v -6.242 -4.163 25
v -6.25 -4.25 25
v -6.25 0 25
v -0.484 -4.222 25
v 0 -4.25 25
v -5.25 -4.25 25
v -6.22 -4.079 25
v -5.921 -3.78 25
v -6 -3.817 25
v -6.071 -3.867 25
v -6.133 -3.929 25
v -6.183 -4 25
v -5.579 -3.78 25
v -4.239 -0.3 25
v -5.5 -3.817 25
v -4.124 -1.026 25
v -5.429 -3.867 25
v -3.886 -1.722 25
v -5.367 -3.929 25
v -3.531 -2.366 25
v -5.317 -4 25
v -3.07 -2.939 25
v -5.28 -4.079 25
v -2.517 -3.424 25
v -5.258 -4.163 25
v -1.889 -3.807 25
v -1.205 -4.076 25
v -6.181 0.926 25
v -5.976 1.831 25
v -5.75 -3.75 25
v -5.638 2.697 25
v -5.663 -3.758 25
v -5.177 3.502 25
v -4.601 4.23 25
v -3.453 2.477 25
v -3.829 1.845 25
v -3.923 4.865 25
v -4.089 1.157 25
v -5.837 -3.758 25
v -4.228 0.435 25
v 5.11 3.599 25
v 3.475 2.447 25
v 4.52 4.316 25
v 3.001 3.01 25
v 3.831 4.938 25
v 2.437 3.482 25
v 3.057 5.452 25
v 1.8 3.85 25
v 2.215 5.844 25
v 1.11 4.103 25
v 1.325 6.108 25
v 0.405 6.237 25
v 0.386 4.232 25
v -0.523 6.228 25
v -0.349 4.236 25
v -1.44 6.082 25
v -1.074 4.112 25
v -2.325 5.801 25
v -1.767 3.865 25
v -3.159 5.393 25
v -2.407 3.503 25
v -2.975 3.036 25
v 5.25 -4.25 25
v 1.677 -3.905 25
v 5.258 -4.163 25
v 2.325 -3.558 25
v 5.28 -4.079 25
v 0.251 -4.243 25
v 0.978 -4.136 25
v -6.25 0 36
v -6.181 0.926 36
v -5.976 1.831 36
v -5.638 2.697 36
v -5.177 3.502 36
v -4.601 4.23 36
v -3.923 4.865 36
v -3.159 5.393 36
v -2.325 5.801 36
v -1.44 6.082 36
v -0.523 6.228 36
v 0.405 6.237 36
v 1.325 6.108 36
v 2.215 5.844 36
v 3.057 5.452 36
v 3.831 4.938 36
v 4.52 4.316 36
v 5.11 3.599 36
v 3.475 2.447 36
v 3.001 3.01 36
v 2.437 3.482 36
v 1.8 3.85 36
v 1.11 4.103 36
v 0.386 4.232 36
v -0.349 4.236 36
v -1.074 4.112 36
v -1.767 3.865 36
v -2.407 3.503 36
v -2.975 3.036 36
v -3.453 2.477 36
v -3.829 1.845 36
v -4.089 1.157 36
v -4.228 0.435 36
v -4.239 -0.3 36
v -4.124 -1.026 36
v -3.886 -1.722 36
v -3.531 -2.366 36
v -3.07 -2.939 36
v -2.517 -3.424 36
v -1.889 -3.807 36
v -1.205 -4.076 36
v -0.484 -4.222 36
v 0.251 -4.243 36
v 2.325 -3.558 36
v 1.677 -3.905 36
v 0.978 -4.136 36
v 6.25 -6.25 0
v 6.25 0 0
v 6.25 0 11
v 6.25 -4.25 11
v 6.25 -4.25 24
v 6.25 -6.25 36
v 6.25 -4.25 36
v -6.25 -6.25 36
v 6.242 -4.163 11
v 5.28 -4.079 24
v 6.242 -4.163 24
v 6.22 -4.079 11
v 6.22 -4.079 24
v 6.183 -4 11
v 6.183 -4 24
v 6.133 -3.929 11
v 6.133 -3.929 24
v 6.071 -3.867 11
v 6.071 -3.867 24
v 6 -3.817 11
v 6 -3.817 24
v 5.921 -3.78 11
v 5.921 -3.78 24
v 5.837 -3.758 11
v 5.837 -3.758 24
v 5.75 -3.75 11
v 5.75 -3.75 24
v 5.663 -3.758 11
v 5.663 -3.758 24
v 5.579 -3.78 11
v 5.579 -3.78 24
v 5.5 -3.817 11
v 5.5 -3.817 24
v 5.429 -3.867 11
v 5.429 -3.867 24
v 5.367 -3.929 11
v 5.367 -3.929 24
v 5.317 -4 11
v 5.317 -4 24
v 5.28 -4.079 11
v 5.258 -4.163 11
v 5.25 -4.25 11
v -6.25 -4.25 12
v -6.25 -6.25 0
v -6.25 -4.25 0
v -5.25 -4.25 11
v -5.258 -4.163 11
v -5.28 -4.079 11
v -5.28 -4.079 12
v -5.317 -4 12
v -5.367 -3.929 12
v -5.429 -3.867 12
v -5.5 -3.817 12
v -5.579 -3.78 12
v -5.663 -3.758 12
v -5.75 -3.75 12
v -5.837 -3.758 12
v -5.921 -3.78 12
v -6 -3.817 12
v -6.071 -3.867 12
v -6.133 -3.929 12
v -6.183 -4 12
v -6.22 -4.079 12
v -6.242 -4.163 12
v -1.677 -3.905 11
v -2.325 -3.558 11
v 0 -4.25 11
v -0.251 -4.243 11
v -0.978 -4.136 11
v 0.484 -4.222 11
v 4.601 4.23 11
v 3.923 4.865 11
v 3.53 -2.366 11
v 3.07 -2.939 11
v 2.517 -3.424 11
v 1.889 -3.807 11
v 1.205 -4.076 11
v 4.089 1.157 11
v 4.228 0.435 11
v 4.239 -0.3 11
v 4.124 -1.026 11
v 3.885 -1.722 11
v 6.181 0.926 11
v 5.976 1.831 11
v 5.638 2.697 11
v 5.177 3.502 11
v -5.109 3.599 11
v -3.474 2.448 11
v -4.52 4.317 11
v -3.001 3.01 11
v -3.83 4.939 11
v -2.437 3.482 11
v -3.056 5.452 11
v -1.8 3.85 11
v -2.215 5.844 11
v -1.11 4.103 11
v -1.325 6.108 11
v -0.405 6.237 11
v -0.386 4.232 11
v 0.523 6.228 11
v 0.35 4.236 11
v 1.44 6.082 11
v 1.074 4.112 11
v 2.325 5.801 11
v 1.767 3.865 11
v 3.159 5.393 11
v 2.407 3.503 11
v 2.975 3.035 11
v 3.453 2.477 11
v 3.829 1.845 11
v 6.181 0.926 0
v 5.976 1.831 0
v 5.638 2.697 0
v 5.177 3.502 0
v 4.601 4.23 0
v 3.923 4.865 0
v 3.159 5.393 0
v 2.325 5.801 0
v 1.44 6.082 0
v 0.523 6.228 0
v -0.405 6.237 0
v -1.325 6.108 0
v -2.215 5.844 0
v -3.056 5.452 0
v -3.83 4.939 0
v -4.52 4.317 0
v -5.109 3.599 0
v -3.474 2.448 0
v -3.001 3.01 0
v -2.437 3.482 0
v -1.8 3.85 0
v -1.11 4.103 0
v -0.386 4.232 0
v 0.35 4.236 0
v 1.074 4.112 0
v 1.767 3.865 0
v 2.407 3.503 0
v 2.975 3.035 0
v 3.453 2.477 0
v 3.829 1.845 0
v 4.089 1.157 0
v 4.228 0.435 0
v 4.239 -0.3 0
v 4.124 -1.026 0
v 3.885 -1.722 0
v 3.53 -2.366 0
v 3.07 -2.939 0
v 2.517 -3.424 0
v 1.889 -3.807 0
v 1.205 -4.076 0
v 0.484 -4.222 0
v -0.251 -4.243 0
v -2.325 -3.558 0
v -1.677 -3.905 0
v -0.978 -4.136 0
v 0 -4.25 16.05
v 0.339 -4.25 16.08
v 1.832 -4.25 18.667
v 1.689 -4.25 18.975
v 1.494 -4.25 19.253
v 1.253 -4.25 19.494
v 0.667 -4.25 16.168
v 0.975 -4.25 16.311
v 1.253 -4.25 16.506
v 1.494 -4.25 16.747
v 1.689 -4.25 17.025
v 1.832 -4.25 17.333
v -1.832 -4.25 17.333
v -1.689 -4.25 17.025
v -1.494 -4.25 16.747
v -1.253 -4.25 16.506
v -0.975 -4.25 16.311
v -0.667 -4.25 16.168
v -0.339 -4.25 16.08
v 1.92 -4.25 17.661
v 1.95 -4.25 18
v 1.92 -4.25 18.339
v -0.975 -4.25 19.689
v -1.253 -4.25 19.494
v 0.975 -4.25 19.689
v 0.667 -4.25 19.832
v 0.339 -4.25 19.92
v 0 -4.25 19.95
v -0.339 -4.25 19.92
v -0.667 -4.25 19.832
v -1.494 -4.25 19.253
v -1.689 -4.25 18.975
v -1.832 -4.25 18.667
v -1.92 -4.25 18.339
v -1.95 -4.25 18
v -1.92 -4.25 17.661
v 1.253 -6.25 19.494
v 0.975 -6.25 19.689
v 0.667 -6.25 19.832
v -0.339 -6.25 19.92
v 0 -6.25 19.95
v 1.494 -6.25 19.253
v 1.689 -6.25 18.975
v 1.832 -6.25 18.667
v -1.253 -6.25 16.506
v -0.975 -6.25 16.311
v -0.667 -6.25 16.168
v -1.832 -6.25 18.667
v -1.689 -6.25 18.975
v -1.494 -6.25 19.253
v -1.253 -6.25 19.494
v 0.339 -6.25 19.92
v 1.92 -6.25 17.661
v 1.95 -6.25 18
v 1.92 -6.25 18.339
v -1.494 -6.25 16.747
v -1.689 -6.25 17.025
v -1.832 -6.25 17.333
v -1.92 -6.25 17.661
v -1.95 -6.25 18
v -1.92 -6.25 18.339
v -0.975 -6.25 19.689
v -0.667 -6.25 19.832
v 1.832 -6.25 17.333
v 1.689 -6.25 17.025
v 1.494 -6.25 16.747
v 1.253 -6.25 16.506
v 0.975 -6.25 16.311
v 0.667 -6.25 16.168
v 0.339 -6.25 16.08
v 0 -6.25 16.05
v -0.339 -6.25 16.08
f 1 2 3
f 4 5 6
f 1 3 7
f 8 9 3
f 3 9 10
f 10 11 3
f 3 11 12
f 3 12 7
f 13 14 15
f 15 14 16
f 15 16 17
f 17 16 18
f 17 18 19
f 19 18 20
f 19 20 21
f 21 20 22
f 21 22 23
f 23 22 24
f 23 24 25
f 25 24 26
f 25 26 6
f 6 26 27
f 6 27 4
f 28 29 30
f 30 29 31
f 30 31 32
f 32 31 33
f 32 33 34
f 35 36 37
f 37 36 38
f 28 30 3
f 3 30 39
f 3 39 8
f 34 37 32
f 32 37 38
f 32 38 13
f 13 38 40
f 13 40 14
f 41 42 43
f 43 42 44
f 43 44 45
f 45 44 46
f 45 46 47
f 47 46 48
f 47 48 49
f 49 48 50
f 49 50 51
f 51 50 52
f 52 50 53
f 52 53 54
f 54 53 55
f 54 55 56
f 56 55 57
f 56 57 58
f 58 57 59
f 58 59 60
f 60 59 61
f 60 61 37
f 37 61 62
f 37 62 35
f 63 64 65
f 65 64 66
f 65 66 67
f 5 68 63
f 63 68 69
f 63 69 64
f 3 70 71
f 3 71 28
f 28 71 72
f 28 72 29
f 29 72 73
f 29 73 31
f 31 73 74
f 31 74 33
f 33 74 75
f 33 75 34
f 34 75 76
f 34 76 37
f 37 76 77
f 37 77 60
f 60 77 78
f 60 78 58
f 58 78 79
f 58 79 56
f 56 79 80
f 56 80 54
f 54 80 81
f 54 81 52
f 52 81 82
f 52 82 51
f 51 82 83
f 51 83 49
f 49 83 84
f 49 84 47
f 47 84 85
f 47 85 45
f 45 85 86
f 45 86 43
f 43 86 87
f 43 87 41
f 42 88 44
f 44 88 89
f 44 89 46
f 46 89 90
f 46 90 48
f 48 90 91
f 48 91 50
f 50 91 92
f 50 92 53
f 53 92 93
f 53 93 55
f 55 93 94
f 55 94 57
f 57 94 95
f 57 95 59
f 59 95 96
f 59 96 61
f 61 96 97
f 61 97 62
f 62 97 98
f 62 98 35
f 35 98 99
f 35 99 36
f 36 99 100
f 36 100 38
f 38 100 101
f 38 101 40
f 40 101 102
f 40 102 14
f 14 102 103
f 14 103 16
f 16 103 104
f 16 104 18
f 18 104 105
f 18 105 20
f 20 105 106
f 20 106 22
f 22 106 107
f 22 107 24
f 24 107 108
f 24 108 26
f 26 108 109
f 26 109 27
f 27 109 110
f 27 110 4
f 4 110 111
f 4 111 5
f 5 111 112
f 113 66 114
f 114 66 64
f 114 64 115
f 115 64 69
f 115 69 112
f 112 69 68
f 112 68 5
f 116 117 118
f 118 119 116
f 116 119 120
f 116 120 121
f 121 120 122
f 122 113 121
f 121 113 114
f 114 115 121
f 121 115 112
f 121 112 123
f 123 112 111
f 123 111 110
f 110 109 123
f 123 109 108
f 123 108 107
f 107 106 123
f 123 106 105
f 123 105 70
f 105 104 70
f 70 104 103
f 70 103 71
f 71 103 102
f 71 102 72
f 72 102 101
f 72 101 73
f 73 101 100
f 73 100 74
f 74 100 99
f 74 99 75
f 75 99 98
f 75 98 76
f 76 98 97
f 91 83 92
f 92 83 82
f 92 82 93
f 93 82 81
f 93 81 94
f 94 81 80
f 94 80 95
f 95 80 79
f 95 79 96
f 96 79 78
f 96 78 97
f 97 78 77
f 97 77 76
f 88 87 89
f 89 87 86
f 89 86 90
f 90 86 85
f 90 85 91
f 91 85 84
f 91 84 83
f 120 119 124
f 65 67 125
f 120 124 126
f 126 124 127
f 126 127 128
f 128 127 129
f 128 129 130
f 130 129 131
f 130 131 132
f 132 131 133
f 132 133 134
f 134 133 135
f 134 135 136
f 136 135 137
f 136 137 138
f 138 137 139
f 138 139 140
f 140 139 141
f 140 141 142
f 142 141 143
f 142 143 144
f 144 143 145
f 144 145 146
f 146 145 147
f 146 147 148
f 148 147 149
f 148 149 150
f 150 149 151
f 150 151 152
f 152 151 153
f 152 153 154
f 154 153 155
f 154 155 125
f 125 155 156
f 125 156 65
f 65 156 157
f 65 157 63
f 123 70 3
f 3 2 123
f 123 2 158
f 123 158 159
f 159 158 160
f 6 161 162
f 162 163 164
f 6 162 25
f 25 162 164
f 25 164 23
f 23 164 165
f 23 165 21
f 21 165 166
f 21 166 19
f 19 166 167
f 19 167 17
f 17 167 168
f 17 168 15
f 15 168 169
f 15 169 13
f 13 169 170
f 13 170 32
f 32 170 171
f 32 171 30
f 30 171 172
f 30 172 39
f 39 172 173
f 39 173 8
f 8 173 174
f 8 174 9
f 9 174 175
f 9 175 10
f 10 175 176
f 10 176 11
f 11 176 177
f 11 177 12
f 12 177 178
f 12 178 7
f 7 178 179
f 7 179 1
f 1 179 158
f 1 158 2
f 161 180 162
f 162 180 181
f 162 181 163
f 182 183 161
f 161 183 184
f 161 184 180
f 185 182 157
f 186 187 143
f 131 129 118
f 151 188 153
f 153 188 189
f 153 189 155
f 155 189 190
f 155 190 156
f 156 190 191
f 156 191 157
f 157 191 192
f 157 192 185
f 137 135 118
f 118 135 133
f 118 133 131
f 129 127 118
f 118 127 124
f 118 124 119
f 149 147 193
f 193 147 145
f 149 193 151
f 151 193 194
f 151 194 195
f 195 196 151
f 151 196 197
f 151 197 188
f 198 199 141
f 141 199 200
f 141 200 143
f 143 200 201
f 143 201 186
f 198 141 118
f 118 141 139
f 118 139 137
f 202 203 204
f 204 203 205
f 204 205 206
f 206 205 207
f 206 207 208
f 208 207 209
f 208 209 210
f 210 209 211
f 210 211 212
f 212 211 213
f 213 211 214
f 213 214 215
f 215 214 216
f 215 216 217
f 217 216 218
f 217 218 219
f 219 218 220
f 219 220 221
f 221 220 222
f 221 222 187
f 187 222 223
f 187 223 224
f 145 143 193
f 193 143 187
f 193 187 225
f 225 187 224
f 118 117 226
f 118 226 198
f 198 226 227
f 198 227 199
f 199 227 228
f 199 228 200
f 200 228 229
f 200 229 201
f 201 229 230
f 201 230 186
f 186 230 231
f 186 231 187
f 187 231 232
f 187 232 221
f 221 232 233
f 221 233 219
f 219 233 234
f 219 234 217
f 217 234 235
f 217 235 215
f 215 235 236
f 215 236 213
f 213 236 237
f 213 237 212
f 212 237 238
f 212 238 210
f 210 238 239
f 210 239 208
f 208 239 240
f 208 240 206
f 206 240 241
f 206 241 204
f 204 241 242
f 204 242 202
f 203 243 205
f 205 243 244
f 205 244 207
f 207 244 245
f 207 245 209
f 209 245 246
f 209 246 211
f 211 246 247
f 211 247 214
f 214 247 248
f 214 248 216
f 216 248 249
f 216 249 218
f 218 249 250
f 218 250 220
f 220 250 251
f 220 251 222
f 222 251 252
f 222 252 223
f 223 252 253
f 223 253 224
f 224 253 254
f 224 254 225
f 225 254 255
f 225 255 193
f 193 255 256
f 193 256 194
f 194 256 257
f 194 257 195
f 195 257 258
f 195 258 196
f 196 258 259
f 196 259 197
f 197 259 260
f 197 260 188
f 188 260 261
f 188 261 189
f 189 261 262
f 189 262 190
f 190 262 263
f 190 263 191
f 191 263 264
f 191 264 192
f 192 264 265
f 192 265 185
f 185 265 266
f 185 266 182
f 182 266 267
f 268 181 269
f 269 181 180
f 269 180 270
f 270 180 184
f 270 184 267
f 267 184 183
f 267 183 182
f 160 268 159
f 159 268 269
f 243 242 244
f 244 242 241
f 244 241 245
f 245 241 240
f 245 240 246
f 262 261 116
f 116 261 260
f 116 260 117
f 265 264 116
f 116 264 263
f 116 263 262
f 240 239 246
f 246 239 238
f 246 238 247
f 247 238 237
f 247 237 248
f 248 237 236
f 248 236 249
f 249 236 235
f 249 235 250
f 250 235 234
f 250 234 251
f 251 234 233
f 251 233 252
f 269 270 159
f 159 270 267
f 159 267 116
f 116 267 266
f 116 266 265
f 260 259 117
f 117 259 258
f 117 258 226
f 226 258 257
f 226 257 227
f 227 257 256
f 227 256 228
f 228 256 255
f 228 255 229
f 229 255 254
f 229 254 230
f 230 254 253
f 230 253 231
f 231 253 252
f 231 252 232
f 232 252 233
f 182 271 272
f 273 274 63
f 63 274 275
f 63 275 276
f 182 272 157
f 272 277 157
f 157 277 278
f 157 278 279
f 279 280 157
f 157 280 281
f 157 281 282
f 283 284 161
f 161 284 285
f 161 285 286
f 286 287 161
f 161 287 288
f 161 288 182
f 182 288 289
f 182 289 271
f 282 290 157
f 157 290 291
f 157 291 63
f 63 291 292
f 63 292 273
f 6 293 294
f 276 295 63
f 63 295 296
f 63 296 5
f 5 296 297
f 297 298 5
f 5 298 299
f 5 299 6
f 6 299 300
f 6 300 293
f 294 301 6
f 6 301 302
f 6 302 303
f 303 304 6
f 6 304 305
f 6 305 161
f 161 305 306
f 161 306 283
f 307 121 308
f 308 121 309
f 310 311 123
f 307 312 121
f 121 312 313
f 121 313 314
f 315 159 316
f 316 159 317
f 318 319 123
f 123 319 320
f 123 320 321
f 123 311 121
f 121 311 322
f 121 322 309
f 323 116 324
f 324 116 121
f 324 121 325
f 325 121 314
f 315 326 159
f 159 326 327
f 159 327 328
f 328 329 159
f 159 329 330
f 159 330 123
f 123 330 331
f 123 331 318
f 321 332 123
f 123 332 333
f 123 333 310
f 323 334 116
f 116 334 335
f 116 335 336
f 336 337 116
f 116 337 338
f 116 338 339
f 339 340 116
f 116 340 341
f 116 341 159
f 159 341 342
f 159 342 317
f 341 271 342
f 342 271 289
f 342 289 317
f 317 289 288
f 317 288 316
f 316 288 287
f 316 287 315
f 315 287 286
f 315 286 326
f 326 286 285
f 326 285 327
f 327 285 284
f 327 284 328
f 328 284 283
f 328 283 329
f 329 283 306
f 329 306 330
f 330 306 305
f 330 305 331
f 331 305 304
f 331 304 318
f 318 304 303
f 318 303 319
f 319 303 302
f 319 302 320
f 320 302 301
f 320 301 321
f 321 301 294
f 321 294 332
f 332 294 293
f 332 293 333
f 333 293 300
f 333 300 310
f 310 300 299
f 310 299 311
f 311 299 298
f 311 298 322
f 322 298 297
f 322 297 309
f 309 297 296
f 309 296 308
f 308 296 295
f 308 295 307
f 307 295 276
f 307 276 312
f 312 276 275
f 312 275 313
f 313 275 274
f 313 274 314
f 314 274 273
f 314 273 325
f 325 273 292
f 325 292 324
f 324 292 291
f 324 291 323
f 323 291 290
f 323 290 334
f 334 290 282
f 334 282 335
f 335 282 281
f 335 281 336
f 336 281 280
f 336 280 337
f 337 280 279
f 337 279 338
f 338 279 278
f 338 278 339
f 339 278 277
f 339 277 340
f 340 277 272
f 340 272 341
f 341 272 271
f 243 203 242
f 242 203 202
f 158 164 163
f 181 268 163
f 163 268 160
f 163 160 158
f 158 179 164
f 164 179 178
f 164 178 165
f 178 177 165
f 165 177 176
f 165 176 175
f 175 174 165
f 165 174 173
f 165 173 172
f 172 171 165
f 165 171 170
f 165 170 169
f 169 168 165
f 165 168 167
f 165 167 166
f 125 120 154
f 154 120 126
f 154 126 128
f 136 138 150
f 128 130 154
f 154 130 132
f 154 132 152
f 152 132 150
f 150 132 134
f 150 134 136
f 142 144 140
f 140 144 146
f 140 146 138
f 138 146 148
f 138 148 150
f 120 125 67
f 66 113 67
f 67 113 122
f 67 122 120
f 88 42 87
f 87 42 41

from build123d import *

# Parameters (mm, degrees)
RESSALTO_EXTRUS_O1_DEPTH = 11
ESBO_O2_W                = 12.5
ESBO_O2_H                = 2
RESSALTO_EXTRUS_O2_DEPTH = 7
RESSALTO_EXTRUS_O3_DEPTH = 7
ESBO_O4_R                = 1.95
CORTE_EXTRUS_O1_DEPTH    = 2
CORTE_EXTRUS_O2_DEPTH    = 12
CORTE_EXTRUS_O3_DEPTH    = 12


with BuildPart() as part:
    # Esboço1 → Ressalto-extrusão1 (new body)
    with BuildSketch(Plane.XY):
        with BuildLine():
            Line((-6.25, -6.25), (0, -6.25))
            ThreePointArc((0, -6.25), (-4.419417382, -4.419417382), (-6.25, 0))
            Line((-6.25, 0), (-6.25, -6.25))
        make_face()
        with BuildLine():
            Line((6.25, -6.25), (6.25, 0))
            ThreePointArc((6.25, 0), (4.419417382, -4.419417382), (0, -6.25))
            Line((0, -6.25), (6.25, -6.25))
        make_face()
        with BuildLine():
            ThreePointArc((-4.25, 0), (0, 4.25), (4.25, 0))
            Line((4.25, 0), (6.25, 0))
            ThreePointArc((6.25, 0), (4.419417387, 4.419417378), (1.3e-08, 6.25))
            ThreePointArc((1.3e-08, 6.25), (-4.419417378, 4.419417387), (-6.25, 0))
            Line((-6.25, 0), (-4.25, 0))
        make_face()
        with BuildLine():
            Line((6.25, 0), (4.25, 0))
            ThreePointArc((4.25, 0), (0, -4.25), (-4.25, 0))
            Line((-4.25, 0), (-6.25, 0))
            ThreePointArc((-6.25, 0), (-4.419417382, -4.419417382), (0, -6.25))
            ThreePointArc((0, -6.25), (4.419417382, -4.419417382), (6.25, 0))
        make_face()
    ressalto_extrus_o1 = extrude(amount=RESSALTO_EXTRUS_O1_DEPTH)

    # Esboço2 → Ressalto-extrusão2 (add)
    with BuildSketch(Plane.XY.offset(11)):
        with Locations((0, -5.25)):
            Rectangle(ESBO_O2_W, ESBO_O2_H)
    ressalto_extrus_o2 = extrude(amount=RESSALTO_EXTRUS_O2_DEPTH)

    # Esboço3 → Ressalto-extrusão3 (add)
    with BuildSketch(Plane.XY.offset(18)):
        with BuildLine():
            Line((5.25, -4.25), (6.25, -4.25))
            ThreePointArc((6.25, -4.25), (5.75, -3.75), (5.25, -4.25))
        make_face()
        with BuildLine():
            Line((-6.25, -4.25), (-5.25, -4.25))
            ThreePointArc((-5.25, -4.25), (-5.75, -3.75), (-6.25, -4.25))
        make_face()
    ressalto_extrus_o3 = extrude(amount=-RESSALTO_EXTRUS_O3_DEPTH)

    # Espelhar1: Ressalto-extrusão1, Ressalto-extrusão2, Ressalto-extrusão3 across plane
    add(ressalto_extrus_o1.mirror(Plane(origin=(0, 0, 18), x_dir=(1, 0, 0), z_dir=(0, 0, -1))))
    add(ressalto_extrus_o2.mirror(Plane(origin=(0, 0, 18), x_dir=(1, 0, 0), z_dir=(0, 0, -1))))
    add(ressalto_extrus_o3.mirror(Plane(origin=(0, 0, 18), x_dir=(1, 0, 0), z_dir=(0, 0, -1))))

    # Esboço4 → Corte-extrusão1 (cut)
    with BuildSketch(Plane(origin=(0, -4.25, 0), x_dir=(1, 0, 0), z_dir=(0, 1, 0))):
        with Locations(Location((0, -18, 0), (0, 0, 270))):
            Circle(ESBO_O4_R)
    extrude(amount=-CORTE_EXTRUS_O1_DEPTH, mode=Mode.SUBTRACT)

    # Esboço5 → Corte-extrusão2 (cut)
    with BuildSketch(Plane.XY.offset(36)):
        with BuildLine():
            Line((2.324678961, -3.557859993), (6.25, -4.25))
            Line((6.25, -4.25), (6.25, 0))
            ThreePointArc((6.25, 0), (5.958039408, 1.887926484), (5.109434749, 3.599468925))
            Line((5.109434749, 3.599468925), (3.474415629, 2.447638869))
            ThreePointArc((3.474415629, 2.447638869), (4.051466798, 1.283790009), (4.25, 0))
            ThreePointArc((4.25, 0), (3.737805879, -2.022698002), (2.324678961, -3.557859993))
        make_face()
    extrude(amount=-CORTE_EXTRUS_O2_DEPTH, mode=Mode.SUBTRACT)

    # Esboço6 → Corte-extrusão3 (cut)
    with BuildSketch(Plane(origin=(0, 0, 0), x_dir=(-1, 0, 0), z_dir=(0, 0, -1))):
        with BuildLine():
            Line((2.324678961, -3.557859993), (6.25, -4.25))
            Line((6.25, -4.25), (6.25, 0))
            ThreePointArc((6.25, 0), (5.95810098, 1.887732163), (5.10966953, 3.599135631))
            Line((5.10966953, 3.599135631), (3.474575281, 2.447412229))
            ThreePointArc((3.474575281, 2.447412229), (4.051508666, 1.283657871), (4.25, 0))
            ThreePointArc((4.25, 0), (3.737805879, -2.022698002), (2.324678961, -3.557859993))
        make_face()
    extrude(amount=-CORTE_EXTRUS_O3_DEPTH, mode=Mode.SUBTRACT)


solid = part.part
